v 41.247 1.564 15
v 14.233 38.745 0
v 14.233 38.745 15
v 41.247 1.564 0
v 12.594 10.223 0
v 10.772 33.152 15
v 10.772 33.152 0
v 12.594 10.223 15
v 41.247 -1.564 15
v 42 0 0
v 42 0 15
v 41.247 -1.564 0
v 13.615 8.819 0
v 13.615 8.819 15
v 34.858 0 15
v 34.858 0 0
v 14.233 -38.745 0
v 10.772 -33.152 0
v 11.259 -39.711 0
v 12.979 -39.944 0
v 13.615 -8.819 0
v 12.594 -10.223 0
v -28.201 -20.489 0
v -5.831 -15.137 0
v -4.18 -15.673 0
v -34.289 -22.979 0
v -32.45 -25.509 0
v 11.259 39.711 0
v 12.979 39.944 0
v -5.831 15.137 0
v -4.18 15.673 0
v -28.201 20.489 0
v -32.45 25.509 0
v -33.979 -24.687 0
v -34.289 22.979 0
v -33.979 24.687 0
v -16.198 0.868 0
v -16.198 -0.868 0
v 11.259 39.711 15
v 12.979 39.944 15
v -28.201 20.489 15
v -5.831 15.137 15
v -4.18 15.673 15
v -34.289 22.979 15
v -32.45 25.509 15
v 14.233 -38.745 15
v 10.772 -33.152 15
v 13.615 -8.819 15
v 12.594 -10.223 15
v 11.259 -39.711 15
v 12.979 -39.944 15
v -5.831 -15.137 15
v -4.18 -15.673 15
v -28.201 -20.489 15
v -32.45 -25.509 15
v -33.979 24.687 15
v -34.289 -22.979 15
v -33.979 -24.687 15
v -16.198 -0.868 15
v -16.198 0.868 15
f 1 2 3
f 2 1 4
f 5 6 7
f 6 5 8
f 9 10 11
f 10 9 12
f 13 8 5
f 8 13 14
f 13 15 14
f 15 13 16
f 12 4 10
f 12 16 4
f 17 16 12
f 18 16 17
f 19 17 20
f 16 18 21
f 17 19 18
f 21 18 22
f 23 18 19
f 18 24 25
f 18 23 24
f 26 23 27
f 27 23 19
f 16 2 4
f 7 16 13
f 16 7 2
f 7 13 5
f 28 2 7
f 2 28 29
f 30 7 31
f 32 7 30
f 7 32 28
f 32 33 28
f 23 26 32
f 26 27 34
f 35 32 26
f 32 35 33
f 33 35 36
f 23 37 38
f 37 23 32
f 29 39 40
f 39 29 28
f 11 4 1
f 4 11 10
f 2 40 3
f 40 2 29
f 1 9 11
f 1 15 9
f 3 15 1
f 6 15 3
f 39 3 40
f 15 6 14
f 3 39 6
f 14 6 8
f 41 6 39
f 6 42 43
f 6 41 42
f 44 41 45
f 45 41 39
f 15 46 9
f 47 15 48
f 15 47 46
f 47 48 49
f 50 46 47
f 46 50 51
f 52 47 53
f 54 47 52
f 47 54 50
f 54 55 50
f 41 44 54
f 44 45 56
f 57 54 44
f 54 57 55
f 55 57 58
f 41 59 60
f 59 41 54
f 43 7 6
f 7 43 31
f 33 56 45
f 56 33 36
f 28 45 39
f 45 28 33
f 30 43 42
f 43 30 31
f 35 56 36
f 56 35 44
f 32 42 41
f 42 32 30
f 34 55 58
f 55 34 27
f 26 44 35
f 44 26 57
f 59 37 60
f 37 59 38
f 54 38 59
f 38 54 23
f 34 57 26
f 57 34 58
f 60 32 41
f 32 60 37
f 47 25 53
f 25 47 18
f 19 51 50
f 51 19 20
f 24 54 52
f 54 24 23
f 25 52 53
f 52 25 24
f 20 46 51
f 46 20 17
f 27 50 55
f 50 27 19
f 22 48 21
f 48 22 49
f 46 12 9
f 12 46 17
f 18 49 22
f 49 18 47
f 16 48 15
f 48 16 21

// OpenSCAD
// Star Decoration - Odin's 3D Prints
// Simple 5-point star

module star_points(outer_r, inner_r, points, height) {
    difference() {
        union() {
            for (i = [0: points-1]) {
                angle1 = i * 360 / points;
                angle2 = (i + 0.5) * 360 / points;
                angle3 = (i + 1) * 360 / points;
                
                hull() {
                    rotate([0, 0, angle1])
                    translate([outer_r, 0, 0])
                    cylinder(h=height, r=2, center=false);
                    rotate([0, 0, angle2])
                    translate([inner_r, 0, 0])
                    cylinder(h=height, r=2, center=false);
                    rotate([0, 0, angle3])
                    translate([outer_r, 0, 0])
                    cylinder(h=height, r=2, center=false);
                }
            }
        }
        // Center hole for hanging
        cylinder(h=height+2, r=4, center=true);
    }
}

// 5 point star, 15mm thick
star_points(outer_r=40, inner_r=18, points=5, height=15);
